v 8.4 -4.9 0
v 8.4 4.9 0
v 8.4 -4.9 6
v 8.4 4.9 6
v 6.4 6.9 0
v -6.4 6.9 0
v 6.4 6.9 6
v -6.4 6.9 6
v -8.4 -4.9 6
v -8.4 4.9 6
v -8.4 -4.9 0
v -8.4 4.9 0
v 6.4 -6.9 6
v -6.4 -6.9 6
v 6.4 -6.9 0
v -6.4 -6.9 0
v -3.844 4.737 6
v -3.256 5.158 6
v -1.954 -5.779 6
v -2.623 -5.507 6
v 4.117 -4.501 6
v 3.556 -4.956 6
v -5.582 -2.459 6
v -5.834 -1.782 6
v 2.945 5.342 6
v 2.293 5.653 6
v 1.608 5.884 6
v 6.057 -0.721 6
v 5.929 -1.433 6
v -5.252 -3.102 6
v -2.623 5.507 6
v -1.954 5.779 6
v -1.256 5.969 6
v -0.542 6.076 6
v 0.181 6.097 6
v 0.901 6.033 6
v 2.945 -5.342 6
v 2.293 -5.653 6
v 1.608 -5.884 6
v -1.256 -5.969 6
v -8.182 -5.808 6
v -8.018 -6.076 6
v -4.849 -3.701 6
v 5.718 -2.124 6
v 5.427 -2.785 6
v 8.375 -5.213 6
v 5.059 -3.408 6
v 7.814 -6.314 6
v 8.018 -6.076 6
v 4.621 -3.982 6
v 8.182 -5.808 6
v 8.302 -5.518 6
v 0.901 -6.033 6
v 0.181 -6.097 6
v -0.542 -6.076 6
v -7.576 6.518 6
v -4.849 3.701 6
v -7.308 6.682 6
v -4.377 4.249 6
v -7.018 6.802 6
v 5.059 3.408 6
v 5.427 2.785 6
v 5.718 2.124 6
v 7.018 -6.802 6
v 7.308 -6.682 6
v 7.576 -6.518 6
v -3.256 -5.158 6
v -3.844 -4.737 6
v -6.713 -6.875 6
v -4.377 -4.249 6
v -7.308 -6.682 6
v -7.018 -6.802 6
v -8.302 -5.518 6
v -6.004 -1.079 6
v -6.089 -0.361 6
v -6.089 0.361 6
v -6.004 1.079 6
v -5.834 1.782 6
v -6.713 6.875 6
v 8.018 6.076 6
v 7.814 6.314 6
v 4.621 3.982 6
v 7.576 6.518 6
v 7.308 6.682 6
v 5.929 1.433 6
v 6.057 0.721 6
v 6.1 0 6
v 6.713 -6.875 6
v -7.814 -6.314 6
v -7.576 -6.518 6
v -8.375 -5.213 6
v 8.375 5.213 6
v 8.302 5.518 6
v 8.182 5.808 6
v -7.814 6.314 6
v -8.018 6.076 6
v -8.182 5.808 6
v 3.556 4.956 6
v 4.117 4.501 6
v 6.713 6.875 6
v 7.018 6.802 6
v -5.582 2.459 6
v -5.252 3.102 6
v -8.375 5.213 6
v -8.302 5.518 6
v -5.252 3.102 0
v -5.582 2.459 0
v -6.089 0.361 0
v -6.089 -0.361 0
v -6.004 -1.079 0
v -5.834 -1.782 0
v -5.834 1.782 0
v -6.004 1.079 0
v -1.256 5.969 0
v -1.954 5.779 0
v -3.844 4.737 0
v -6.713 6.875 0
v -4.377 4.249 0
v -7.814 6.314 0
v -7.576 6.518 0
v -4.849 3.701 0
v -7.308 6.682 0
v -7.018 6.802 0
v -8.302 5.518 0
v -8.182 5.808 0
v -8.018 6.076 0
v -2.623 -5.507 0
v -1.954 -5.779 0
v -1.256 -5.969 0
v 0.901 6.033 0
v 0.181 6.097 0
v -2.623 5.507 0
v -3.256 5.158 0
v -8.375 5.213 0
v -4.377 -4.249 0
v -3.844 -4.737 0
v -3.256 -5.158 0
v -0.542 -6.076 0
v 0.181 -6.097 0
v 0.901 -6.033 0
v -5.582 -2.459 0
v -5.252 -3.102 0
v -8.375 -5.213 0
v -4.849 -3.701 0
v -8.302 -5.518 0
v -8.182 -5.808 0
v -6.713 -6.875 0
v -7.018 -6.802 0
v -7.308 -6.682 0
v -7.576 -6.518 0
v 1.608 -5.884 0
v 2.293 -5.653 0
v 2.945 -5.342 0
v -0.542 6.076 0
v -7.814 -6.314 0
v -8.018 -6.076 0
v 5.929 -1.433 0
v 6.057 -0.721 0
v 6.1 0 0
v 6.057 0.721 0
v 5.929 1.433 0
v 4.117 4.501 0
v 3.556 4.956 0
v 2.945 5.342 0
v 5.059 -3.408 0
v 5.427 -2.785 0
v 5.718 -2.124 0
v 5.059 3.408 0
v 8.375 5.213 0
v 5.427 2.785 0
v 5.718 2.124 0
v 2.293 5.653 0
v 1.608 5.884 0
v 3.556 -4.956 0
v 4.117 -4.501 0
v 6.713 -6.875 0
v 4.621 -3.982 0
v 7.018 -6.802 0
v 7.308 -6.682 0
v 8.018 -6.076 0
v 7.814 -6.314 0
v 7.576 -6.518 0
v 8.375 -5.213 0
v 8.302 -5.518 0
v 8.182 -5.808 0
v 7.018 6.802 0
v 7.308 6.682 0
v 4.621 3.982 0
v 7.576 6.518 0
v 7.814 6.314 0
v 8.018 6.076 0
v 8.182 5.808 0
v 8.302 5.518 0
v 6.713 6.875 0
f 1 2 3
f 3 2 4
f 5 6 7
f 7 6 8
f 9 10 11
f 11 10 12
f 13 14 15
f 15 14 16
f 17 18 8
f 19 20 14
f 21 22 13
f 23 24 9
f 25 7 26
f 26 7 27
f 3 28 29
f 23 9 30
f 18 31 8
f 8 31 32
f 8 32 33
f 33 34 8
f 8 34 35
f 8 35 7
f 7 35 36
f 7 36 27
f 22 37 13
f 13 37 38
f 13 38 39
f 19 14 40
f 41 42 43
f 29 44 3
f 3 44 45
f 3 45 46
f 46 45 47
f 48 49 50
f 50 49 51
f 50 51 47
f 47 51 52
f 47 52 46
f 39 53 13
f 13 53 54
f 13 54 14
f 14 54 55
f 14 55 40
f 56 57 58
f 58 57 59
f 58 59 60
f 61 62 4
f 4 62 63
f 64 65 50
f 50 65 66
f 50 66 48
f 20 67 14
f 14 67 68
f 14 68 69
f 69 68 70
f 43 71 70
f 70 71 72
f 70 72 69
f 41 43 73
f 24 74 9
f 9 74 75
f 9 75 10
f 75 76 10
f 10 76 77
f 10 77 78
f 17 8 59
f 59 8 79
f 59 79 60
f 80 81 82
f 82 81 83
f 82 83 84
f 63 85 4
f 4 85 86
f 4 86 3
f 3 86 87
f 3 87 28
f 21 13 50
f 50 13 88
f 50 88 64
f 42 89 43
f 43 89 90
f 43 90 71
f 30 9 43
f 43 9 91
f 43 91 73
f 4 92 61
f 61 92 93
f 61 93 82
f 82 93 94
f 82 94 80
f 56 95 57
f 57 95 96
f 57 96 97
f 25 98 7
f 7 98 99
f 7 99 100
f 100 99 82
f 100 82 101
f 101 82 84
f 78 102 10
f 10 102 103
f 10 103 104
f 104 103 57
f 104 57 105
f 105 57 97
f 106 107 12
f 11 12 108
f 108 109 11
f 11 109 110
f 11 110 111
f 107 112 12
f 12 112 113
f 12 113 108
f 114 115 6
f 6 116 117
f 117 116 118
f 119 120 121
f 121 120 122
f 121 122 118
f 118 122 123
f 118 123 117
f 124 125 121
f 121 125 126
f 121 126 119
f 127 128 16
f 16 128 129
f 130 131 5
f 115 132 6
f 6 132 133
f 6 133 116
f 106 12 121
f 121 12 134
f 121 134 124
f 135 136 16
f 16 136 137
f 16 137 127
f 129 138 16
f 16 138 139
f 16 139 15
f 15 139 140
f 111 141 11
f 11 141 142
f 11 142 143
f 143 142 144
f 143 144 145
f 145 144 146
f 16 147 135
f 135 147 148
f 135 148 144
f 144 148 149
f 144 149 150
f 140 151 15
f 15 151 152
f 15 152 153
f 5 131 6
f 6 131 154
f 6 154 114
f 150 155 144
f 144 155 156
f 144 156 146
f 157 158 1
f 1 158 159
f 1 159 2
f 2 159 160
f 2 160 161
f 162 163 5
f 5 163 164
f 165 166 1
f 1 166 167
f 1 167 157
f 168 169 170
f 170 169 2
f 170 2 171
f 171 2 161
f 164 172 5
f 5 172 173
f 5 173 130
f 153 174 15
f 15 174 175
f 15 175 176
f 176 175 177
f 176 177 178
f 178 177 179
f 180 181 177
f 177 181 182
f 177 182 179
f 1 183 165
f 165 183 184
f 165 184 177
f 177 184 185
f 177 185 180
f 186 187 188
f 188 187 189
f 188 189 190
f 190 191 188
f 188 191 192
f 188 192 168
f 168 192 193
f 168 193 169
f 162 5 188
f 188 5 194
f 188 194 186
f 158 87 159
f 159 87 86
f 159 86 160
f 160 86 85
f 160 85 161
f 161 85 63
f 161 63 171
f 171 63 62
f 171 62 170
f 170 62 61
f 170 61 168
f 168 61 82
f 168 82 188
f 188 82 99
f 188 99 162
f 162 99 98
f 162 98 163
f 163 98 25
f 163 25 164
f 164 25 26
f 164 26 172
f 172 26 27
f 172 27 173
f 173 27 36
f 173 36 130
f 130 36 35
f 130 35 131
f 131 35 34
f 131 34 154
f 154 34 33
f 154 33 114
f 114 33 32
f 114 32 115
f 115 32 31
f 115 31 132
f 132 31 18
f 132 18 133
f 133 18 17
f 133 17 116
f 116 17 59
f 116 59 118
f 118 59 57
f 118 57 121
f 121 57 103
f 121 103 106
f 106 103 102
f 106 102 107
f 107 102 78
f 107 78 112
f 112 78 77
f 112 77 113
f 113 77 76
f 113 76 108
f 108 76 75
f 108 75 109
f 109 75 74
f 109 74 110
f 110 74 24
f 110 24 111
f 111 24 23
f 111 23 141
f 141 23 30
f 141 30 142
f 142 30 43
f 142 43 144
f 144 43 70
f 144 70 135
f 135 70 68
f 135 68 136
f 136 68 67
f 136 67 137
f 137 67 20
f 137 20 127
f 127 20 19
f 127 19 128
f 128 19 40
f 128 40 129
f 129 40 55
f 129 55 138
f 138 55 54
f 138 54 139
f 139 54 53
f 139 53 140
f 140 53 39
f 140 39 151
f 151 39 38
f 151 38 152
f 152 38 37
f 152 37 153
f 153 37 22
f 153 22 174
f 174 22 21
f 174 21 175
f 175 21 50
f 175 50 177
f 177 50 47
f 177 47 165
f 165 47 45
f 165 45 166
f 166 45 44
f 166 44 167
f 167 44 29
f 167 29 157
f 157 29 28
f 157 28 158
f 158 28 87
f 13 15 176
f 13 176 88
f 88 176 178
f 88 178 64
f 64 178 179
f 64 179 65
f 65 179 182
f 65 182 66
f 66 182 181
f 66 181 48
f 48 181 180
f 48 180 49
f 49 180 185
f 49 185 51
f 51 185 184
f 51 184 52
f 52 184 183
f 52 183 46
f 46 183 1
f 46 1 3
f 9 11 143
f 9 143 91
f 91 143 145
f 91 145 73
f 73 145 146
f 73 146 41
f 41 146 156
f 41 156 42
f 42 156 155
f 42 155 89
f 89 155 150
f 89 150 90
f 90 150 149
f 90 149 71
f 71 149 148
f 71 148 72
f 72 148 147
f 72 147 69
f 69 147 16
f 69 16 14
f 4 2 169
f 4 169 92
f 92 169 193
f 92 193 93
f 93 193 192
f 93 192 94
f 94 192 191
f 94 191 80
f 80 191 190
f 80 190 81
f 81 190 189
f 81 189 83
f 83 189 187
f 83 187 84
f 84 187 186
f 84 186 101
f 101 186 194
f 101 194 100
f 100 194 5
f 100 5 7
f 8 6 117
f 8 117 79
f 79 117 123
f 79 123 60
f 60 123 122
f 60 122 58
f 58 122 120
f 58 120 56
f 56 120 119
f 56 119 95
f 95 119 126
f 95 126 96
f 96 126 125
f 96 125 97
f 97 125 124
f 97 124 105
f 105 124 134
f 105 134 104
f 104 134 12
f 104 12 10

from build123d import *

# Parameters (mm, degrees)
SKETCH1_W           = 16.8
SKETCH1_H           = 13.8
BOSS_EXTRUDE1_DEPTH = 6
CUT_EXTRUDE1_REACH  = 14.417
SKETCH2_R           = 6.1
FILLET1_R           = 2


with BuildPart() as part:
    # Sketch1 → Boss-Extrude1 (new body)
    with BuildSketch(Plane.XY):
        Rectangle(SKETCH1_W, SKETCH1_H)
    extrude(amount=BOSS_EXTRUDE1_DEPTH)

    # Sketch2 → Cut-Extrude1 (cut, up to next)
    with BuildSketch(Plane.XY.offset(6), mode=Mode.PRIVATE) as cut_extrude1_sk1:
        Circle(SKETCH2_R)
    cut_extrude1_tool1 = extrude(cut_extrude1_sk1.sketch, amount=-CUT_EXTRUDE1_REACH, mode=Mode.PRIVATE) & part.part
    add(cut_extrude1_tool1.solids().sort_by_distance((0, 0, 6))[0], mode=Mode.SUBTRACT)

    # Fillet1
    fillet1_edges = [part.edges().sort_by_distance(p)[0] for p in [
        (8.4, -6.9, 3),
        (-8.4, -6.9, 3),
        (-8.4, 6.9, 3),
        (8.4, 6.9, 3),
    ]]
    fillet(fillet1_edges, radius=FILLET1_R)


solid = part.part
